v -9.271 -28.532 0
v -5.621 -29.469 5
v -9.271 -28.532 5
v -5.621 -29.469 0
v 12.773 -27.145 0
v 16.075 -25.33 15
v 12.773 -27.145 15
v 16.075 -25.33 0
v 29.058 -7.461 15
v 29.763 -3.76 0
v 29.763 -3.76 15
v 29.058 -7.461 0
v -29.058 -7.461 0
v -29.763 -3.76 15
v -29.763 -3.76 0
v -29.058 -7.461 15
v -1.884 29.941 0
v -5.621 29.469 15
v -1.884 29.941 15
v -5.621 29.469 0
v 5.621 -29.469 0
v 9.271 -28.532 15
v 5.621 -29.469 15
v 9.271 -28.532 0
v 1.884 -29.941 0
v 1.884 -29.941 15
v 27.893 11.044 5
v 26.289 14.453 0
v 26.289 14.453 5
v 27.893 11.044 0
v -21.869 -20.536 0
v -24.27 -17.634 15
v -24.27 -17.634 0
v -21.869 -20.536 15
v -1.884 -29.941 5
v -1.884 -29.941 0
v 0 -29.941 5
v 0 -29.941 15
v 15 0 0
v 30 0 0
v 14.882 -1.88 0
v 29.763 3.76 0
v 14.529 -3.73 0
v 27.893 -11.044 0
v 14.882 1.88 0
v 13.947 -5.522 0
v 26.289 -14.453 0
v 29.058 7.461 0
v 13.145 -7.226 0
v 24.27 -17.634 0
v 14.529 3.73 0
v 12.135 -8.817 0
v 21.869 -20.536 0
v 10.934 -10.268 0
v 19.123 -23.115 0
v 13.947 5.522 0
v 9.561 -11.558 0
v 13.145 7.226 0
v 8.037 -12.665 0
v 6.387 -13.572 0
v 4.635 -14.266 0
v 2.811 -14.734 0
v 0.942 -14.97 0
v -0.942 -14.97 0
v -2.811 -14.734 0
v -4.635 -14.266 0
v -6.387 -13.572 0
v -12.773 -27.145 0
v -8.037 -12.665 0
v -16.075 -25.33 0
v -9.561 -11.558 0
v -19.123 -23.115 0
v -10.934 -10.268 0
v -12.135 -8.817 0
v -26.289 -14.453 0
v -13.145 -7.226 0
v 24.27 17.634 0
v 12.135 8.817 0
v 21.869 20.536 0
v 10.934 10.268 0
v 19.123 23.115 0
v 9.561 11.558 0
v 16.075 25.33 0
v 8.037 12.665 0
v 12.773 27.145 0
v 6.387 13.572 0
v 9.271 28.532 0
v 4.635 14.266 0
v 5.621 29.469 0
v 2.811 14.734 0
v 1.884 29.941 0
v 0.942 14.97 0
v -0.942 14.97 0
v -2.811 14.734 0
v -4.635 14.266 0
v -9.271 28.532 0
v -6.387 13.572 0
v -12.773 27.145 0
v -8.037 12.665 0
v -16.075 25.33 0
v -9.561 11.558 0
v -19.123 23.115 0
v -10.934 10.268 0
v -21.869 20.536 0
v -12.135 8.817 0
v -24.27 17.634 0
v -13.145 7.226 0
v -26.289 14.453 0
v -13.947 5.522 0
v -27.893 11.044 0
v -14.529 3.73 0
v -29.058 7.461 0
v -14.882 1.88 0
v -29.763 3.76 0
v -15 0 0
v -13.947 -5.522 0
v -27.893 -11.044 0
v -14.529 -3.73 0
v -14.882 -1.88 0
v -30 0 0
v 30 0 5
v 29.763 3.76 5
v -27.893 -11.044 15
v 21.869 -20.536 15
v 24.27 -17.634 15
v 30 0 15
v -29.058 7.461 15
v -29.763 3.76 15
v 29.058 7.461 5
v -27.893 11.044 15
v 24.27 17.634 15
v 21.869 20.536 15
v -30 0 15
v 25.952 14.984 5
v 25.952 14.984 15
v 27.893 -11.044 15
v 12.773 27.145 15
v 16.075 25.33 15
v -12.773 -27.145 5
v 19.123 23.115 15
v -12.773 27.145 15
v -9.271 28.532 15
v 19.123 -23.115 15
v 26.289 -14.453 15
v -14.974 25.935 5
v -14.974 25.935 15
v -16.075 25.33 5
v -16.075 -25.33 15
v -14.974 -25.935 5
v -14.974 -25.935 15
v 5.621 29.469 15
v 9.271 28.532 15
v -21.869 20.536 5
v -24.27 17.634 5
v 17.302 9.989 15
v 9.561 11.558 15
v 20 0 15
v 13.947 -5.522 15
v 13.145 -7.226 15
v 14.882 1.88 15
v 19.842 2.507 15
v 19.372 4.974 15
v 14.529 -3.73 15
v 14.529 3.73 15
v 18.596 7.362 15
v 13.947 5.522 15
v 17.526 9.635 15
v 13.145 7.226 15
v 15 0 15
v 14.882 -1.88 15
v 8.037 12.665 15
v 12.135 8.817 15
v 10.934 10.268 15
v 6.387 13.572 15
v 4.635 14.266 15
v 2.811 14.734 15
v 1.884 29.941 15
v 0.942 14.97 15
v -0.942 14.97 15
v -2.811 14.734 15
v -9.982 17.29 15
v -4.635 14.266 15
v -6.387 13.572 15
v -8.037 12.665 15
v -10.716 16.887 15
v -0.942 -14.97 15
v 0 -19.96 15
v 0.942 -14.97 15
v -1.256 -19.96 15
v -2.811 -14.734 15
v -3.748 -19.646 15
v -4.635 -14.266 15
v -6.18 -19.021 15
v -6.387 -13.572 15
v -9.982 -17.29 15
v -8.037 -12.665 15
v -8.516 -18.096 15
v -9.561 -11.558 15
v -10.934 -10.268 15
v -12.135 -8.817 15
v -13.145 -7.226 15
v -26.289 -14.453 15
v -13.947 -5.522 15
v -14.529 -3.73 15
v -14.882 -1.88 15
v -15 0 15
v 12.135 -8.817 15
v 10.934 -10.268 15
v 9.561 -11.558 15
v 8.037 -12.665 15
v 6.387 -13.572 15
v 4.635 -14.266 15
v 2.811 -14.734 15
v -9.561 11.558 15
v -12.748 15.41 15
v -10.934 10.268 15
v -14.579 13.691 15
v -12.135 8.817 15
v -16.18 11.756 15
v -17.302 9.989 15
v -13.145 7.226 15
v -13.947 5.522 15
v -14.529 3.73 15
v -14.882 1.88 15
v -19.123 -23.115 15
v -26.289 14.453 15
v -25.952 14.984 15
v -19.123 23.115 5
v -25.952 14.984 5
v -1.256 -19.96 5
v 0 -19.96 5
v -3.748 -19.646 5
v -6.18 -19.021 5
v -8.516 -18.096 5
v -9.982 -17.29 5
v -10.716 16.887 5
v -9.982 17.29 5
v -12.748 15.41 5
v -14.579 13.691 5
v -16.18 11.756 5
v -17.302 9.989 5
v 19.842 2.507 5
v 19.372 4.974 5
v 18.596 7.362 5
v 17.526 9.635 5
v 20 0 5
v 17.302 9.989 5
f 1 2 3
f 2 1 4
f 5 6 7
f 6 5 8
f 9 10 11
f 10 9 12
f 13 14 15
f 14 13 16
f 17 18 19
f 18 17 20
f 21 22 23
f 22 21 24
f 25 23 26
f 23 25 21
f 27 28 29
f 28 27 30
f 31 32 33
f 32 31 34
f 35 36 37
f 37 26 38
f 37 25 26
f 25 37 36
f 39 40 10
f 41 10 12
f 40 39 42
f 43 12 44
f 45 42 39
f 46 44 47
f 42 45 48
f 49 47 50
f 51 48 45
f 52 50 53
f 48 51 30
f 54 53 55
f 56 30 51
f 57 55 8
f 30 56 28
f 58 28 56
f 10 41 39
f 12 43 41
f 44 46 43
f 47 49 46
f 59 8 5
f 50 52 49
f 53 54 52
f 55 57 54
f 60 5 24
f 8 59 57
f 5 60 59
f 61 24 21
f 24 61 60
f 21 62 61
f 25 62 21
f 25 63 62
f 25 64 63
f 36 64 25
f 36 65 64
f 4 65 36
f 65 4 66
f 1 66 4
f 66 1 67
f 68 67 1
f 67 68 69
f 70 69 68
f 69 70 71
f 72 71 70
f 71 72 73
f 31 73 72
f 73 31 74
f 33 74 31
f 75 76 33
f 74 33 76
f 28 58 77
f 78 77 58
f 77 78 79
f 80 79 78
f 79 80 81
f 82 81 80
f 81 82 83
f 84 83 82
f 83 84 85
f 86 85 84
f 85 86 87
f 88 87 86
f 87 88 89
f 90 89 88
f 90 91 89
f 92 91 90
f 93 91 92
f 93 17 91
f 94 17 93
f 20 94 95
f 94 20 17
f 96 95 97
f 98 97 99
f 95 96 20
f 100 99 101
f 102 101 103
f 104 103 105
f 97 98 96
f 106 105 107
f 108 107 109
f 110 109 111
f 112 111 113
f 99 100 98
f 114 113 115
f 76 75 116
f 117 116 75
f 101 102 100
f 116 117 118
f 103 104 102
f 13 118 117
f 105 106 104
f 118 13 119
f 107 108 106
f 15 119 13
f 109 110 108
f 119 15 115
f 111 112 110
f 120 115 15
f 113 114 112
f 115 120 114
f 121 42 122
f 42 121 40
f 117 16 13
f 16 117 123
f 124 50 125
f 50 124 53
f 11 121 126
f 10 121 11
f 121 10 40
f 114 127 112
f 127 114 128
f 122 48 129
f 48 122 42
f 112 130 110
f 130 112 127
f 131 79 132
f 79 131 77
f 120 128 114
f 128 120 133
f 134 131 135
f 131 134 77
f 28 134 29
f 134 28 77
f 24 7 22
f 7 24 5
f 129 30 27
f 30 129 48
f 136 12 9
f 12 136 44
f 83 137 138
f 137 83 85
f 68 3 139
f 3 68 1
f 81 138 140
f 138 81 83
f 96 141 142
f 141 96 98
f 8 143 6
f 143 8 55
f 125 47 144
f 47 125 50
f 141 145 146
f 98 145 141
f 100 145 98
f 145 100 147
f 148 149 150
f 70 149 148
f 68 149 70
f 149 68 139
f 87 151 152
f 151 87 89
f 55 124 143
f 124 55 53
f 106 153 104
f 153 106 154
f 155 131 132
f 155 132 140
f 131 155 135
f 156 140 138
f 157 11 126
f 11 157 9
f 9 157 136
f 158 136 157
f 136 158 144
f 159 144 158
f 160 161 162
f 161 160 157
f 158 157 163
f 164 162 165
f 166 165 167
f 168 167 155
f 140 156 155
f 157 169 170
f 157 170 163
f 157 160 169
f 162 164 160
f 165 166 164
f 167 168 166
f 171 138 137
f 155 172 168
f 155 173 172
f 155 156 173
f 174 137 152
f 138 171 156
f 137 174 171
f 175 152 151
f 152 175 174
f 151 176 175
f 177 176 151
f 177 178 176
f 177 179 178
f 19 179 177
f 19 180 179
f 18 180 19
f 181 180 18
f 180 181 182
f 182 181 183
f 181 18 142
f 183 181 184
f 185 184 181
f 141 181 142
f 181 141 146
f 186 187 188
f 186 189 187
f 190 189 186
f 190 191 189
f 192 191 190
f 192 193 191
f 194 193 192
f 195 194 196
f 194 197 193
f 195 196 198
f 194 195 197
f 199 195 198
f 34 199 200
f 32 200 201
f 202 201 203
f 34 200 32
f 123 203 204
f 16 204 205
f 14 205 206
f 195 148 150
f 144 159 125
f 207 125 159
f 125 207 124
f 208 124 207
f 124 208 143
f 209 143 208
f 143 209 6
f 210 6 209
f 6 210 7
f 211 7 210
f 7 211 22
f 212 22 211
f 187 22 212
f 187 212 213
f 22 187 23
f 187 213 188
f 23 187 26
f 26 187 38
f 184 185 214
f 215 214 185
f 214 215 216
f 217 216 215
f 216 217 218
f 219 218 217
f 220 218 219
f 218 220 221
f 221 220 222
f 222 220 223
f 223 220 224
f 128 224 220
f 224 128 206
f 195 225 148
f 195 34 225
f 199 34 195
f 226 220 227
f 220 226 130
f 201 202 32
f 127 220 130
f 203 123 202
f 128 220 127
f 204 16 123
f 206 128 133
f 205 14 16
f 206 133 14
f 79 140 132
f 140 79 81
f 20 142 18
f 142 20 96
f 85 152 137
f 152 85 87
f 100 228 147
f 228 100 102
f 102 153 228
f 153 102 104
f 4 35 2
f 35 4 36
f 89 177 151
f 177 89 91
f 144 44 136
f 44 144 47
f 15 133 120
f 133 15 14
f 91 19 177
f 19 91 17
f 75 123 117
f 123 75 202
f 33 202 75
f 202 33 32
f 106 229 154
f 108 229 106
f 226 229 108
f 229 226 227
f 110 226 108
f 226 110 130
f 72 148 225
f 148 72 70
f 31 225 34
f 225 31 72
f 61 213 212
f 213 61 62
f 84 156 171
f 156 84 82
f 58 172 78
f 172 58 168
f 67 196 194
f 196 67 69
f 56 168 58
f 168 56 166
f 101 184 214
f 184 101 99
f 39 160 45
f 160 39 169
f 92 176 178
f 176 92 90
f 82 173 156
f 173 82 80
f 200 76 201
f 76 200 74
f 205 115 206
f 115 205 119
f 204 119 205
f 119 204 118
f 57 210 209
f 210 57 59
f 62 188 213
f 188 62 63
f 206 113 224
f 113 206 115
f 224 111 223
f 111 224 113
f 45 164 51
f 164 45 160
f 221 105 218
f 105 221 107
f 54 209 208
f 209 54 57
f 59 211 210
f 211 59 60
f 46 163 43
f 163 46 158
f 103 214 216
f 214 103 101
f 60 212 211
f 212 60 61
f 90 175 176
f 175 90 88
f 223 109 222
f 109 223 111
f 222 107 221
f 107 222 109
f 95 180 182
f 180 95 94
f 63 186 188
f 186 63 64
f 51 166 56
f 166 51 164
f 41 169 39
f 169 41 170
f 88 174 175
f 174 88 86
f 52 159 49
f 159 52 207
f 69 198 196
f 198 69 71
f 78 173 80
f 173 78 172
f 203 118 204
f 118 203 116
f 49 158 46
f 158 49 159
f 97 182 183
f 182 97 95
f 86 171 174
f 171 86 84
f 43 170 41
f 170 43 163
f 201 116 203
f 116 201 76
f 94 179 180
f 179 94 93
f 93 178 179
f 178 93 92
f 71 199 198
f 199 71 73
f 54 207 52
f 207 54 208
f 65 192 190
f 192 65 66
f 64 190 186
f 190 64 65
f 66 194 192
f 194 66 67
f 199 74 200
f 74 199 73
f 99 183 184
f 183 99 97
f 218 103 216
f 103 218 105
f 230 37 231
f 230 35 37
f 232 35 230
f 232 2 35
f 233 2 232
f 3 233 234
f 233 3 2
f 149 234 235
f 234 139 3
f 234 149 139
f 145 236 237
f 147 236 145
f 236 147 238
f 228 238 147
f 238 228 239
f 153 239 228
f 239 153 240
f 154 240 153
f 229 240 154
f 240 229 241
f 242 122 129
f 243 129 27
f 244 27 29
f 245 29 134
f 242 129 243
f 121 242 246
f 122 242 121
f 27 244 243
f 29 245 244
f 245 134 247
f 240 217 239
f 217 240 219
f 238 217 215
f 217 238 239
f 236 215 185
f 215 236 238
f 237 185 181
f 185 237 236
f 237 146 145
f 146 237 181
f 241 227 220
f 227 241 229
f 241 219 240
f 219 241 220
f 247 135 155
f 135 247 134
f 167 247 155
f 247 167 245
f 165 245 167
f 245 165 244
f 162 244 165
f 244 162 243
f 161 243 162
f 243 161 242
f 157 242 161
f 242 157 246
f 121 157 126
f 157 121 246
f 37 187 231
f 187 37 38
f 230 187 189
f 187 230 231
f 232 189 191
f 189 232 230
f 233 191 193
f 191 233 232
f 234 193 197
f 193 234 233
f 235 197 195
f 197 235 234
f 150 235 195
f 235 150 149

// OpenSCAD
$fn=50;
module pie(radius, angle) { 
    // based on shadowwynd @ https://bit.ly/2CYX6YX
    // Create a pie slice, from [0..360] 
    bigger = radius * 3; 
    partial = angle / 12; 
    pp=[[0,0],
        [bigger, 0], 
        [ bigger * cos(partial * 1), bigger * sin(partial * 1)], 
        [ bigger * cos(partial * 2), bigger * sin(partial * 2)], 
        [ bigger * cos(partial * 3), bigger * sin(partial * 3)], 
        [ bigger * cos(partial * 4), bigger * sin(partial * 4)], 
        [ bigger * cos(partial * 5), bigger * sin(partial * 5)], 
        [ bigger * cos(partial * 6), bigger * sin(partial * 6)], 
        [ bigger * cos(partial * 7), bigger * sin(partial * 7)], 
        [ bigger * cos(partial * 8), bigger * sin(partial * 8)], 
        [ bigger * cos(partial * 9), bigger * sin(partial * 9)], 
        [ bigger * cos(partial * 10), bigger * sin(partial * 10)], 
        [ bigger * cos(partial * 11), bigger * sin(partial * 11)], 
        [ bigger * cos(partial * 12), bigger * sin(partial * 12)] 
       ]; 
    intersection()  { 
        circle (radius);
        polygon(points=pp); 
    } 
} 

module demo() {
    difference() {
        cylinder(15,r=30);
        cylinder(15,r=15);
        translate([0,0,5]) {
            linear_extrude(10) {
                difference() {
                    for (angle = [0,120,240]) {
                        rotate([0,0,angle]) pie(31,30);
                    }
                    circle(r=20);
                }
            }
        }
    }
}
demo();
